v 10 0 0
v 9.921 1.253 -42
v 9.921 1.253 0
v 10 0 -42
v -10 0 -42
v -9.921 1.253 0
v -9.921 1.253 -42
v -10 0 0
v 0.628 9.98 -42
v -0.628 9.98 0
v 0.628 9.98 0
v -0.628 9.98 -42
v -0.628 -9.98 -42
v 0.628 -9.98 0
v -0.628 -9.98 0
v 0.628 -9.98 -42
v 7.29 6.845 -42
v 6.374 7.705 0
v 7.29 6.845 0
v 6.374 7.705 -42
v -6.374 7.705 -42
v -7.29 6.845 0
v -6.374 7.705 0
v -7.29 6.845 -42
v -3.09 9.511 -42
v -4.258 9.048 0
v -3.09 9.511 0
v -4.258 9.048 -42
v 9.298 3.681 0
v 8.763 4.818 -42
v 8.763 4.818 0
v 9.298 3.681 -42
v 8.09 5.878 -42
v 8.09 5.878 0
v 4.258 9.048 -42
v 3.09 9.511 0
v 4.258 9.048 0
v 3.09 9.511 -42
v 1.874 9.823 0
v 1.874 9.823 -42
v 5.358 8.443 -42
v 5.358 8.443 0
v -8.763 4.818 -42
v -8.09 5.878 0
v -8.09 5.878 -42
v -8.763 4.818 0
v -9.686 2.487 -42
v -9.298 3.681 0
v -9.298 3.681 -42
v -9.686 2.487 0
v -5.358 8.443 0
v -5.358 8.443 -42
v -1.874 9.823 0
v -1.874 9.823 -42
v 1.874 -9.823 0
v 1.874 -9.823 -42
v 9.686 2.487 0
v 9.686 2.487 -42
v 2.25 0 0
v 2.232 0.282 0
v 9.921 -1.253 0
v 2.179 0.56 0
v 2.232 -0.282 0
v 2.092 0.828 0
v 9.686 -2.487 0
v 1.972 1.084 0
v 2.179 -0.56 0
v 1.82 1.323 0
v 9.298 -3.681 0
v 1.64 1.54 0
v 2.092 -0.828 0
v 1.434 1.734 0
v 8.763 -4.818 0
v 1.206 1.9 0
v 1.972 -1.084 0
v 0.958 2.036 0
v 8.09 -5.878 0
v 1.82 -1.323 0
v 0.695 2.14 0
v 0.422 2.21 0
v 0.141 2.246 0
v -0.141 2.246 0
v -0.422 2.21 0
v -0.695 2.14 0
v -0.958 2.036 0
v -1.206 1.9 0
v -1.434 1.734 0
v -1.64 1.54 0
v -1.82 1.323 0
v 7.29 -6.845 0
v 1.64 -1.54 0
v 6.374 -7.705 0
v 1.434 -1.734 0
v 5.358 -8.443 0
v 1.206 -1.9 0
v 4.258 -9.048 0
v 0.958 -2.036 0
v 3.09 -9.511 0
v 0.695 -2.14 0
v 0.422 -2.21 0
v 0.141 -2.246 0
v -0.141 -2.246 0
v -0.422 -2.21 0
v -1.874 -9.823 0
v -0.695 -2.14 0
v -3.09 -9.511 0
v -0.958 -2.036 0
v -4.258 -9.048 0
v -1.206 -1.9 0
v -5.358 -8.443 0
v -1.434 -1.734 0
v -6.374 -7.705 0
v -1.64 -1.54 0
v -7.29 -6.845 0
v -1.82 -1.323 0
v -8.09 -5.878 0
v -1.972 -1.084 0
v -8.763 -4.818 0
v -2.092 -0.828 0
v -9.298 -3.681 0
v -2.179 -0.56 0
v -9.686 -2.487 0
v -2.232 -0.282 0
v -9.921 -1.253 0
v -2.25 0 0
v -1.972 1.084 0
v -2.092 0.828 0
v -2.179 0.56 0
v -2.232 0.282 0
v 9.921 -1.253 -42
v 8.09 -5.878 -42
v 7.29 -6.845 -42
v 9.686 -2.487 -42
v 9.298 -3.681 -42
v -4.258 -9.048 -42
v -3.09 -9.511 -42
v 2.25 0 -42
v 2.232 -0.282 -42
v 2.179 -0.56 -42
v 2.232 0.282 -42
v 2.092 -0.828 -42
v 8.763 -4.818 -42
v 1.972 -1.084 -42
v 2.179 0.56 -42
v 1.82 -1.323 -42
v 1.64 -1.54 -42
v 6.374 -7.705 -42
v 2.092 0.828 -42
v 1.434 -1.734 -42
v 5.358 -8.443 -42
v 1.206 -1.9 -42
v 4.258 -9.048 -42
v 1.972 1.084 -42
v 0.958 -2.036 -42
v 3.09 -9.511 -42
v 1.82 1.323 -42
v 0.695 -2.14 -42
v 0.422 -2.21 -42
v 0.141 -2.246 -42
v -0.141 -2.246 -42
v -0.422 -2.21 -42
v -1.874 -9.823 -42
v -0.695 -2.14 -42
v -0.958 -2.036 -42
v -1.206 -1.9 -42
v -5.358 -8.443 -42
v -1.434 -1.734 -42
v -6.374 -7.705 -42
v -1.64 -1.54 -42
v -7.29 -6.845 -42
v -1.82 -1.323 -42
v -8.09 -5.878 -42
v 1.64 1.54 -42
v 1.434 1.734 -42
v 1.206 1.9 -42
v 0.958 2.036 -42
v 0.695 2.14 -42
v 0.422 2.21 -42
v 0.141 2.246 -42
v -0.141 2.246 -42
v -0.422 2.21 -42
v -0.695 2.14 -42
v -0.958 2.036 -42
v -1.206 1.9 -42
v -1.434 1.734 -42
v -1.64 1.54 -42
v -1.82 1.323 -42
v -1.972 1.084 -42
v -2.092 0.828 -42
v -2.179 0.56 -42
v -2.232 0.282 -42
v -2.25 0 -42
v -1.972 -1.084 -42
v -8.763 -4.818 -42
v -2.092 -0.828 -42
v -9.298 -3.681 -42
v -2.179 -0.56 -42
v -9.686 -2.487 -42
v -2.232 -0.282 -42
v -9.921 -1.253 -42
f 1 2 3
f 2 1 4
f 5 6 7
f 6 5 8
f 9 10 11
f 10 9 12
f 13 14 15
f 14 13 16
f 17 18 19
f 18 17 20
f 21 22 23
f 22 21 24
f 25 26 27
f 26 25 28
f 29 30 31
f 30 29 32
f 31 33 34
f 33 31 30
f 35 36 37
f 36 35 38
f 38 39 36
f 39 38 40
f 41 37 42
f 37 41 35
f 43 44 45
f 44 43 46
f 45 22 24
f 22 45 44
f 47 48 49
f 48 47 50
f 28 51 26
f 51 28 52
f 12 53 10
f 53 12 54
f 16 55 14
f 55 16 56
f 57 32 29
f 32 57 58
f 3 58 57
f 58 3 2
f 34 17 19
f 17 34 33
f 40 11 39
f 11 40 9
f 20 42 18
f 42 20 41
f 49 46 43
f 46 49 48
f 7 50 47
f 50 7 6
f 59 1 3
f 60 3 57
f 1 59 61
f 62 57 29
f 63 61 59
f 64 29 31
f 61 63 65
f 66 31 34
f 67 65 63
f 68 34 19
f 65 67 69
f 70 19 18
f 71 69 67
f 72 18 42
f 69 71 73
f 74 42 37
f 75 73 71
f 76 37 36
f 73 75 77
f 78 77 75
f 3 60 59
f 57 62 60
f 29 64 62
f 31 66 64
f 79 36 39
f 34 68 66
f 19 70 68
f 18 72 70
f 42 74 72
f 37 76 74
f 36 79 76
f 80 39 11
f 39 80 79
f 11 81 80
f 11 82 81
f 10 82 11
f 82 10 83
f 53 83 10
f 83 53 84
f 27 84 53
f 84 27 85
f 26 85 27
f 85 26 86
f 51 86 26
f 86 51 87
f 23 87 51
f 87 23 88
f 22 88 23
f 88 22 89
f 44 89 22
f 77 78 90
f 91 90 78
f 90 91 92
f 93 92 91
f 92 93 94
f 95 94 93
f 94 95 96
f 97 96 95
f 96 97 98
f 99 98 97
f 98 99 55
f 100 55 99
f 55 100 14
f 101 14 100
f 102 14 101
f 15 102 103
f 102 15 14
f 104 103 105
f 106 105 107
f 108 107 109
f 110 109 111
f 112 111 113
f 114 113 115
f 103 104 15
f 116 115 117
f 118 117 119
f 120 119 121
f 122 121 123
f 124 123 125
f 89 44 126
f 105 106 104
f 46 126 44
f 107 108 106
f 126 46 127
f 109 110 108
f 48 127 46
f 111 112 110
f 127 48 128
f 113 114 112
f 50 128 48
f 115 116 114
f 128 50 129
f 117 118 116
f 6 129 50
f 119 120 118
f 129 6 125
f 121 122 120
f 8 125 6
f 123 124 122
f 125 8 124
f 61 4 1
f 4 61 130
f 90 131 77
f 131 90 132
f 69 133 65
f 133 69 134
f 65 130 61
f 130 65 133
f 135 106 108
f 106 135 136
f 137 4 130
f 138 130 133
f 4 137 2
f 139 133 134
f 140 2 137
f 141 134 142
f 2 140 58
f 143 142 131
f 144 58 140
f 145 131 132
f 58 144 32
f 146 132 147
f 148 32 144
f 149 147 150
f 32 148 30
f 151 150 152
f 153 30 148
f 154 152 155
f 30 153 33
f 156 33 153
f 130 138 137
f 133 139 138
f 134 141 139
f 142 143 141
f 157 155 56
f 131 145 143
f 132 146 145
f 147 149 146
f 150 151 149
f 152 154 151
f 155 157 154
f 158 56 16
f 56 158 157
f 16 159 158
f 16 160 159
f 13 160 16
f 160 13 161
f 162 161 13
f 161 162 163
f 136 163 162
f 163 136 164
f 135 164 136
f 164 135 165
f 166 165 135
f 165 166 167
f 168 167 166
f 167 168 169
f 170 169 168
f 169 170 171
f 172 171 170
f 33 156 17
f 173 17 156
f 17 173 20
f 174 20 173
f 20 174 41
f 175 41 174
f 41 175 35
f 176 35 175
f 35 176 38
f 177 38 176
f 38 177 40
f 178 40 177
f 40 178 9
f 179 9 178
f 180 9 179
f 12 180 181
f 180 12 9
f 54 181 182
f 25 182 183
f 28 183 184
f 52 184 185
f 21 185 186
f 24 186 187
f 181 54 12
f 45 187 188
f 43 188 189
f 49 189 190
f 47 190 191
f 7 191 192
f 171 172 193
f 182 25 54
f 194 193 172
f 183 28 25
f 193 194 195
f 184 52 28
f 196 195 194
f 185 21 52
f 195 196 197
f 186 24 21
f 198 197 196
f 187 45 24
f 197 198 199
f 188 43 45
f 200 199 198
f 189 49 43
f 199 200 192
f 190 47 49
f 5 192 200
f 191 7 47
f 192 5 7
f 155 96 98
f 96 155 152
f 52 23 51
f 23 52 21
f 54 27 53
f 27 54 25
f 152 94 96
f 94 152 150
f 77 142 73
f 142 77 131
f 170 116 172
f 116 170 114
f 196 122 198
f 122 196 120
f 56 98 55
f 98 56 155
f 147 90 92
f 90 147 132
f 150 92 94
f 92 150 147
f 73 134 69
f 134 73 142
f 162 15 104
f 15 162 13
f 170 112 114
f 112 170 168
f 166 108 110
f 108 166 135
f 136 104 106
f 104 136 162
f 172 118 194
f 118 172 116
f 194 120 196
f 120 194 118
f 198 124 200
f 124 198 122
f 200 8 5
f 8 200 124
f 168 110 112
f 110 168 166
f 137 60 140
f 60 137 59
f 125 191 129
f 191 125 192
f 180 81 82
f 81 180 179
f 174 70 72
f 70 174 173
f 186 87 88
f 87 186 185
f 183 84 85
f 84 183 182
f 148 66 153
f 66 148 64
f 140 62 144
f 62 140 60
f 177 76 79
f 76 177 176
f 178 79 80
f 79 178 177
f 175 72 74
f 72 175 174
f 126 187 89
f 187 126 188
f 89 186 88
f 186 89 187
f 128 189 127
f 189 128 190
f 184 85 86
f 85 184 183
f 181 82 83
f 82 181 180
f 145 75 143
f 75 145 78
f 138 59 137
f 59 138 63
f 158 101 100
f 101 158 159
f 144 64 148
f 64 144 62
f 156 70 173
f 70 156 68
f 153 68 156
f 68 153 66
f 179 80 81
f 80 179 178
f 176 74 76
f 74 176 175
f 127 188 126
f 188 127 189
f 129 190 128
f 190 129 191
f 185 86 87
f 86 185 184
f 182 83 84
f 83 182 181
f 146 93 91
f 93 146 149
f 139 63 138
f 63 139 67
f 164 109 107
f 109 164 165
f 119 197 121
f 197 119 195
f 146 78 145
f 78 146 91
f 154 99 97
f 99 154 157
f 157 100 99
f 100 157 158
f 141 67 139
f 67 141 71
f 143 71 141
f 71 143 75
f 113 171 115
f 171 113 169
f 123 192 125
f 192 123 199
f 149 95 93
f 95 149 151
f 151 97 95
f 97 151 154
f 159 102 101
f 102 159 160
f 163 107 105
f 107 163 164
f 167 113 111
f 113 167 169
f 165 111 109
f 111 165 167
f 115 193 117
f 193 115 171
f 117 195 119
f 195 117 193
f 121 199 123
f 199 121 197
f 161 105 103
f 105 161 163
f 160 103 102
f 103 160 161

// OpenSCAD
$fn = 50;


difference() {
	union() {
		translate(v = [0, 0, -42.0000000000]) {
			cylinder(h = 42, r = 10.0000000000);
		}
	}
	union() {
		#translate(v = [0, 0, -42]) {
			cylinder(h = 42, r = 2.2500000000);
		}
	}
}
